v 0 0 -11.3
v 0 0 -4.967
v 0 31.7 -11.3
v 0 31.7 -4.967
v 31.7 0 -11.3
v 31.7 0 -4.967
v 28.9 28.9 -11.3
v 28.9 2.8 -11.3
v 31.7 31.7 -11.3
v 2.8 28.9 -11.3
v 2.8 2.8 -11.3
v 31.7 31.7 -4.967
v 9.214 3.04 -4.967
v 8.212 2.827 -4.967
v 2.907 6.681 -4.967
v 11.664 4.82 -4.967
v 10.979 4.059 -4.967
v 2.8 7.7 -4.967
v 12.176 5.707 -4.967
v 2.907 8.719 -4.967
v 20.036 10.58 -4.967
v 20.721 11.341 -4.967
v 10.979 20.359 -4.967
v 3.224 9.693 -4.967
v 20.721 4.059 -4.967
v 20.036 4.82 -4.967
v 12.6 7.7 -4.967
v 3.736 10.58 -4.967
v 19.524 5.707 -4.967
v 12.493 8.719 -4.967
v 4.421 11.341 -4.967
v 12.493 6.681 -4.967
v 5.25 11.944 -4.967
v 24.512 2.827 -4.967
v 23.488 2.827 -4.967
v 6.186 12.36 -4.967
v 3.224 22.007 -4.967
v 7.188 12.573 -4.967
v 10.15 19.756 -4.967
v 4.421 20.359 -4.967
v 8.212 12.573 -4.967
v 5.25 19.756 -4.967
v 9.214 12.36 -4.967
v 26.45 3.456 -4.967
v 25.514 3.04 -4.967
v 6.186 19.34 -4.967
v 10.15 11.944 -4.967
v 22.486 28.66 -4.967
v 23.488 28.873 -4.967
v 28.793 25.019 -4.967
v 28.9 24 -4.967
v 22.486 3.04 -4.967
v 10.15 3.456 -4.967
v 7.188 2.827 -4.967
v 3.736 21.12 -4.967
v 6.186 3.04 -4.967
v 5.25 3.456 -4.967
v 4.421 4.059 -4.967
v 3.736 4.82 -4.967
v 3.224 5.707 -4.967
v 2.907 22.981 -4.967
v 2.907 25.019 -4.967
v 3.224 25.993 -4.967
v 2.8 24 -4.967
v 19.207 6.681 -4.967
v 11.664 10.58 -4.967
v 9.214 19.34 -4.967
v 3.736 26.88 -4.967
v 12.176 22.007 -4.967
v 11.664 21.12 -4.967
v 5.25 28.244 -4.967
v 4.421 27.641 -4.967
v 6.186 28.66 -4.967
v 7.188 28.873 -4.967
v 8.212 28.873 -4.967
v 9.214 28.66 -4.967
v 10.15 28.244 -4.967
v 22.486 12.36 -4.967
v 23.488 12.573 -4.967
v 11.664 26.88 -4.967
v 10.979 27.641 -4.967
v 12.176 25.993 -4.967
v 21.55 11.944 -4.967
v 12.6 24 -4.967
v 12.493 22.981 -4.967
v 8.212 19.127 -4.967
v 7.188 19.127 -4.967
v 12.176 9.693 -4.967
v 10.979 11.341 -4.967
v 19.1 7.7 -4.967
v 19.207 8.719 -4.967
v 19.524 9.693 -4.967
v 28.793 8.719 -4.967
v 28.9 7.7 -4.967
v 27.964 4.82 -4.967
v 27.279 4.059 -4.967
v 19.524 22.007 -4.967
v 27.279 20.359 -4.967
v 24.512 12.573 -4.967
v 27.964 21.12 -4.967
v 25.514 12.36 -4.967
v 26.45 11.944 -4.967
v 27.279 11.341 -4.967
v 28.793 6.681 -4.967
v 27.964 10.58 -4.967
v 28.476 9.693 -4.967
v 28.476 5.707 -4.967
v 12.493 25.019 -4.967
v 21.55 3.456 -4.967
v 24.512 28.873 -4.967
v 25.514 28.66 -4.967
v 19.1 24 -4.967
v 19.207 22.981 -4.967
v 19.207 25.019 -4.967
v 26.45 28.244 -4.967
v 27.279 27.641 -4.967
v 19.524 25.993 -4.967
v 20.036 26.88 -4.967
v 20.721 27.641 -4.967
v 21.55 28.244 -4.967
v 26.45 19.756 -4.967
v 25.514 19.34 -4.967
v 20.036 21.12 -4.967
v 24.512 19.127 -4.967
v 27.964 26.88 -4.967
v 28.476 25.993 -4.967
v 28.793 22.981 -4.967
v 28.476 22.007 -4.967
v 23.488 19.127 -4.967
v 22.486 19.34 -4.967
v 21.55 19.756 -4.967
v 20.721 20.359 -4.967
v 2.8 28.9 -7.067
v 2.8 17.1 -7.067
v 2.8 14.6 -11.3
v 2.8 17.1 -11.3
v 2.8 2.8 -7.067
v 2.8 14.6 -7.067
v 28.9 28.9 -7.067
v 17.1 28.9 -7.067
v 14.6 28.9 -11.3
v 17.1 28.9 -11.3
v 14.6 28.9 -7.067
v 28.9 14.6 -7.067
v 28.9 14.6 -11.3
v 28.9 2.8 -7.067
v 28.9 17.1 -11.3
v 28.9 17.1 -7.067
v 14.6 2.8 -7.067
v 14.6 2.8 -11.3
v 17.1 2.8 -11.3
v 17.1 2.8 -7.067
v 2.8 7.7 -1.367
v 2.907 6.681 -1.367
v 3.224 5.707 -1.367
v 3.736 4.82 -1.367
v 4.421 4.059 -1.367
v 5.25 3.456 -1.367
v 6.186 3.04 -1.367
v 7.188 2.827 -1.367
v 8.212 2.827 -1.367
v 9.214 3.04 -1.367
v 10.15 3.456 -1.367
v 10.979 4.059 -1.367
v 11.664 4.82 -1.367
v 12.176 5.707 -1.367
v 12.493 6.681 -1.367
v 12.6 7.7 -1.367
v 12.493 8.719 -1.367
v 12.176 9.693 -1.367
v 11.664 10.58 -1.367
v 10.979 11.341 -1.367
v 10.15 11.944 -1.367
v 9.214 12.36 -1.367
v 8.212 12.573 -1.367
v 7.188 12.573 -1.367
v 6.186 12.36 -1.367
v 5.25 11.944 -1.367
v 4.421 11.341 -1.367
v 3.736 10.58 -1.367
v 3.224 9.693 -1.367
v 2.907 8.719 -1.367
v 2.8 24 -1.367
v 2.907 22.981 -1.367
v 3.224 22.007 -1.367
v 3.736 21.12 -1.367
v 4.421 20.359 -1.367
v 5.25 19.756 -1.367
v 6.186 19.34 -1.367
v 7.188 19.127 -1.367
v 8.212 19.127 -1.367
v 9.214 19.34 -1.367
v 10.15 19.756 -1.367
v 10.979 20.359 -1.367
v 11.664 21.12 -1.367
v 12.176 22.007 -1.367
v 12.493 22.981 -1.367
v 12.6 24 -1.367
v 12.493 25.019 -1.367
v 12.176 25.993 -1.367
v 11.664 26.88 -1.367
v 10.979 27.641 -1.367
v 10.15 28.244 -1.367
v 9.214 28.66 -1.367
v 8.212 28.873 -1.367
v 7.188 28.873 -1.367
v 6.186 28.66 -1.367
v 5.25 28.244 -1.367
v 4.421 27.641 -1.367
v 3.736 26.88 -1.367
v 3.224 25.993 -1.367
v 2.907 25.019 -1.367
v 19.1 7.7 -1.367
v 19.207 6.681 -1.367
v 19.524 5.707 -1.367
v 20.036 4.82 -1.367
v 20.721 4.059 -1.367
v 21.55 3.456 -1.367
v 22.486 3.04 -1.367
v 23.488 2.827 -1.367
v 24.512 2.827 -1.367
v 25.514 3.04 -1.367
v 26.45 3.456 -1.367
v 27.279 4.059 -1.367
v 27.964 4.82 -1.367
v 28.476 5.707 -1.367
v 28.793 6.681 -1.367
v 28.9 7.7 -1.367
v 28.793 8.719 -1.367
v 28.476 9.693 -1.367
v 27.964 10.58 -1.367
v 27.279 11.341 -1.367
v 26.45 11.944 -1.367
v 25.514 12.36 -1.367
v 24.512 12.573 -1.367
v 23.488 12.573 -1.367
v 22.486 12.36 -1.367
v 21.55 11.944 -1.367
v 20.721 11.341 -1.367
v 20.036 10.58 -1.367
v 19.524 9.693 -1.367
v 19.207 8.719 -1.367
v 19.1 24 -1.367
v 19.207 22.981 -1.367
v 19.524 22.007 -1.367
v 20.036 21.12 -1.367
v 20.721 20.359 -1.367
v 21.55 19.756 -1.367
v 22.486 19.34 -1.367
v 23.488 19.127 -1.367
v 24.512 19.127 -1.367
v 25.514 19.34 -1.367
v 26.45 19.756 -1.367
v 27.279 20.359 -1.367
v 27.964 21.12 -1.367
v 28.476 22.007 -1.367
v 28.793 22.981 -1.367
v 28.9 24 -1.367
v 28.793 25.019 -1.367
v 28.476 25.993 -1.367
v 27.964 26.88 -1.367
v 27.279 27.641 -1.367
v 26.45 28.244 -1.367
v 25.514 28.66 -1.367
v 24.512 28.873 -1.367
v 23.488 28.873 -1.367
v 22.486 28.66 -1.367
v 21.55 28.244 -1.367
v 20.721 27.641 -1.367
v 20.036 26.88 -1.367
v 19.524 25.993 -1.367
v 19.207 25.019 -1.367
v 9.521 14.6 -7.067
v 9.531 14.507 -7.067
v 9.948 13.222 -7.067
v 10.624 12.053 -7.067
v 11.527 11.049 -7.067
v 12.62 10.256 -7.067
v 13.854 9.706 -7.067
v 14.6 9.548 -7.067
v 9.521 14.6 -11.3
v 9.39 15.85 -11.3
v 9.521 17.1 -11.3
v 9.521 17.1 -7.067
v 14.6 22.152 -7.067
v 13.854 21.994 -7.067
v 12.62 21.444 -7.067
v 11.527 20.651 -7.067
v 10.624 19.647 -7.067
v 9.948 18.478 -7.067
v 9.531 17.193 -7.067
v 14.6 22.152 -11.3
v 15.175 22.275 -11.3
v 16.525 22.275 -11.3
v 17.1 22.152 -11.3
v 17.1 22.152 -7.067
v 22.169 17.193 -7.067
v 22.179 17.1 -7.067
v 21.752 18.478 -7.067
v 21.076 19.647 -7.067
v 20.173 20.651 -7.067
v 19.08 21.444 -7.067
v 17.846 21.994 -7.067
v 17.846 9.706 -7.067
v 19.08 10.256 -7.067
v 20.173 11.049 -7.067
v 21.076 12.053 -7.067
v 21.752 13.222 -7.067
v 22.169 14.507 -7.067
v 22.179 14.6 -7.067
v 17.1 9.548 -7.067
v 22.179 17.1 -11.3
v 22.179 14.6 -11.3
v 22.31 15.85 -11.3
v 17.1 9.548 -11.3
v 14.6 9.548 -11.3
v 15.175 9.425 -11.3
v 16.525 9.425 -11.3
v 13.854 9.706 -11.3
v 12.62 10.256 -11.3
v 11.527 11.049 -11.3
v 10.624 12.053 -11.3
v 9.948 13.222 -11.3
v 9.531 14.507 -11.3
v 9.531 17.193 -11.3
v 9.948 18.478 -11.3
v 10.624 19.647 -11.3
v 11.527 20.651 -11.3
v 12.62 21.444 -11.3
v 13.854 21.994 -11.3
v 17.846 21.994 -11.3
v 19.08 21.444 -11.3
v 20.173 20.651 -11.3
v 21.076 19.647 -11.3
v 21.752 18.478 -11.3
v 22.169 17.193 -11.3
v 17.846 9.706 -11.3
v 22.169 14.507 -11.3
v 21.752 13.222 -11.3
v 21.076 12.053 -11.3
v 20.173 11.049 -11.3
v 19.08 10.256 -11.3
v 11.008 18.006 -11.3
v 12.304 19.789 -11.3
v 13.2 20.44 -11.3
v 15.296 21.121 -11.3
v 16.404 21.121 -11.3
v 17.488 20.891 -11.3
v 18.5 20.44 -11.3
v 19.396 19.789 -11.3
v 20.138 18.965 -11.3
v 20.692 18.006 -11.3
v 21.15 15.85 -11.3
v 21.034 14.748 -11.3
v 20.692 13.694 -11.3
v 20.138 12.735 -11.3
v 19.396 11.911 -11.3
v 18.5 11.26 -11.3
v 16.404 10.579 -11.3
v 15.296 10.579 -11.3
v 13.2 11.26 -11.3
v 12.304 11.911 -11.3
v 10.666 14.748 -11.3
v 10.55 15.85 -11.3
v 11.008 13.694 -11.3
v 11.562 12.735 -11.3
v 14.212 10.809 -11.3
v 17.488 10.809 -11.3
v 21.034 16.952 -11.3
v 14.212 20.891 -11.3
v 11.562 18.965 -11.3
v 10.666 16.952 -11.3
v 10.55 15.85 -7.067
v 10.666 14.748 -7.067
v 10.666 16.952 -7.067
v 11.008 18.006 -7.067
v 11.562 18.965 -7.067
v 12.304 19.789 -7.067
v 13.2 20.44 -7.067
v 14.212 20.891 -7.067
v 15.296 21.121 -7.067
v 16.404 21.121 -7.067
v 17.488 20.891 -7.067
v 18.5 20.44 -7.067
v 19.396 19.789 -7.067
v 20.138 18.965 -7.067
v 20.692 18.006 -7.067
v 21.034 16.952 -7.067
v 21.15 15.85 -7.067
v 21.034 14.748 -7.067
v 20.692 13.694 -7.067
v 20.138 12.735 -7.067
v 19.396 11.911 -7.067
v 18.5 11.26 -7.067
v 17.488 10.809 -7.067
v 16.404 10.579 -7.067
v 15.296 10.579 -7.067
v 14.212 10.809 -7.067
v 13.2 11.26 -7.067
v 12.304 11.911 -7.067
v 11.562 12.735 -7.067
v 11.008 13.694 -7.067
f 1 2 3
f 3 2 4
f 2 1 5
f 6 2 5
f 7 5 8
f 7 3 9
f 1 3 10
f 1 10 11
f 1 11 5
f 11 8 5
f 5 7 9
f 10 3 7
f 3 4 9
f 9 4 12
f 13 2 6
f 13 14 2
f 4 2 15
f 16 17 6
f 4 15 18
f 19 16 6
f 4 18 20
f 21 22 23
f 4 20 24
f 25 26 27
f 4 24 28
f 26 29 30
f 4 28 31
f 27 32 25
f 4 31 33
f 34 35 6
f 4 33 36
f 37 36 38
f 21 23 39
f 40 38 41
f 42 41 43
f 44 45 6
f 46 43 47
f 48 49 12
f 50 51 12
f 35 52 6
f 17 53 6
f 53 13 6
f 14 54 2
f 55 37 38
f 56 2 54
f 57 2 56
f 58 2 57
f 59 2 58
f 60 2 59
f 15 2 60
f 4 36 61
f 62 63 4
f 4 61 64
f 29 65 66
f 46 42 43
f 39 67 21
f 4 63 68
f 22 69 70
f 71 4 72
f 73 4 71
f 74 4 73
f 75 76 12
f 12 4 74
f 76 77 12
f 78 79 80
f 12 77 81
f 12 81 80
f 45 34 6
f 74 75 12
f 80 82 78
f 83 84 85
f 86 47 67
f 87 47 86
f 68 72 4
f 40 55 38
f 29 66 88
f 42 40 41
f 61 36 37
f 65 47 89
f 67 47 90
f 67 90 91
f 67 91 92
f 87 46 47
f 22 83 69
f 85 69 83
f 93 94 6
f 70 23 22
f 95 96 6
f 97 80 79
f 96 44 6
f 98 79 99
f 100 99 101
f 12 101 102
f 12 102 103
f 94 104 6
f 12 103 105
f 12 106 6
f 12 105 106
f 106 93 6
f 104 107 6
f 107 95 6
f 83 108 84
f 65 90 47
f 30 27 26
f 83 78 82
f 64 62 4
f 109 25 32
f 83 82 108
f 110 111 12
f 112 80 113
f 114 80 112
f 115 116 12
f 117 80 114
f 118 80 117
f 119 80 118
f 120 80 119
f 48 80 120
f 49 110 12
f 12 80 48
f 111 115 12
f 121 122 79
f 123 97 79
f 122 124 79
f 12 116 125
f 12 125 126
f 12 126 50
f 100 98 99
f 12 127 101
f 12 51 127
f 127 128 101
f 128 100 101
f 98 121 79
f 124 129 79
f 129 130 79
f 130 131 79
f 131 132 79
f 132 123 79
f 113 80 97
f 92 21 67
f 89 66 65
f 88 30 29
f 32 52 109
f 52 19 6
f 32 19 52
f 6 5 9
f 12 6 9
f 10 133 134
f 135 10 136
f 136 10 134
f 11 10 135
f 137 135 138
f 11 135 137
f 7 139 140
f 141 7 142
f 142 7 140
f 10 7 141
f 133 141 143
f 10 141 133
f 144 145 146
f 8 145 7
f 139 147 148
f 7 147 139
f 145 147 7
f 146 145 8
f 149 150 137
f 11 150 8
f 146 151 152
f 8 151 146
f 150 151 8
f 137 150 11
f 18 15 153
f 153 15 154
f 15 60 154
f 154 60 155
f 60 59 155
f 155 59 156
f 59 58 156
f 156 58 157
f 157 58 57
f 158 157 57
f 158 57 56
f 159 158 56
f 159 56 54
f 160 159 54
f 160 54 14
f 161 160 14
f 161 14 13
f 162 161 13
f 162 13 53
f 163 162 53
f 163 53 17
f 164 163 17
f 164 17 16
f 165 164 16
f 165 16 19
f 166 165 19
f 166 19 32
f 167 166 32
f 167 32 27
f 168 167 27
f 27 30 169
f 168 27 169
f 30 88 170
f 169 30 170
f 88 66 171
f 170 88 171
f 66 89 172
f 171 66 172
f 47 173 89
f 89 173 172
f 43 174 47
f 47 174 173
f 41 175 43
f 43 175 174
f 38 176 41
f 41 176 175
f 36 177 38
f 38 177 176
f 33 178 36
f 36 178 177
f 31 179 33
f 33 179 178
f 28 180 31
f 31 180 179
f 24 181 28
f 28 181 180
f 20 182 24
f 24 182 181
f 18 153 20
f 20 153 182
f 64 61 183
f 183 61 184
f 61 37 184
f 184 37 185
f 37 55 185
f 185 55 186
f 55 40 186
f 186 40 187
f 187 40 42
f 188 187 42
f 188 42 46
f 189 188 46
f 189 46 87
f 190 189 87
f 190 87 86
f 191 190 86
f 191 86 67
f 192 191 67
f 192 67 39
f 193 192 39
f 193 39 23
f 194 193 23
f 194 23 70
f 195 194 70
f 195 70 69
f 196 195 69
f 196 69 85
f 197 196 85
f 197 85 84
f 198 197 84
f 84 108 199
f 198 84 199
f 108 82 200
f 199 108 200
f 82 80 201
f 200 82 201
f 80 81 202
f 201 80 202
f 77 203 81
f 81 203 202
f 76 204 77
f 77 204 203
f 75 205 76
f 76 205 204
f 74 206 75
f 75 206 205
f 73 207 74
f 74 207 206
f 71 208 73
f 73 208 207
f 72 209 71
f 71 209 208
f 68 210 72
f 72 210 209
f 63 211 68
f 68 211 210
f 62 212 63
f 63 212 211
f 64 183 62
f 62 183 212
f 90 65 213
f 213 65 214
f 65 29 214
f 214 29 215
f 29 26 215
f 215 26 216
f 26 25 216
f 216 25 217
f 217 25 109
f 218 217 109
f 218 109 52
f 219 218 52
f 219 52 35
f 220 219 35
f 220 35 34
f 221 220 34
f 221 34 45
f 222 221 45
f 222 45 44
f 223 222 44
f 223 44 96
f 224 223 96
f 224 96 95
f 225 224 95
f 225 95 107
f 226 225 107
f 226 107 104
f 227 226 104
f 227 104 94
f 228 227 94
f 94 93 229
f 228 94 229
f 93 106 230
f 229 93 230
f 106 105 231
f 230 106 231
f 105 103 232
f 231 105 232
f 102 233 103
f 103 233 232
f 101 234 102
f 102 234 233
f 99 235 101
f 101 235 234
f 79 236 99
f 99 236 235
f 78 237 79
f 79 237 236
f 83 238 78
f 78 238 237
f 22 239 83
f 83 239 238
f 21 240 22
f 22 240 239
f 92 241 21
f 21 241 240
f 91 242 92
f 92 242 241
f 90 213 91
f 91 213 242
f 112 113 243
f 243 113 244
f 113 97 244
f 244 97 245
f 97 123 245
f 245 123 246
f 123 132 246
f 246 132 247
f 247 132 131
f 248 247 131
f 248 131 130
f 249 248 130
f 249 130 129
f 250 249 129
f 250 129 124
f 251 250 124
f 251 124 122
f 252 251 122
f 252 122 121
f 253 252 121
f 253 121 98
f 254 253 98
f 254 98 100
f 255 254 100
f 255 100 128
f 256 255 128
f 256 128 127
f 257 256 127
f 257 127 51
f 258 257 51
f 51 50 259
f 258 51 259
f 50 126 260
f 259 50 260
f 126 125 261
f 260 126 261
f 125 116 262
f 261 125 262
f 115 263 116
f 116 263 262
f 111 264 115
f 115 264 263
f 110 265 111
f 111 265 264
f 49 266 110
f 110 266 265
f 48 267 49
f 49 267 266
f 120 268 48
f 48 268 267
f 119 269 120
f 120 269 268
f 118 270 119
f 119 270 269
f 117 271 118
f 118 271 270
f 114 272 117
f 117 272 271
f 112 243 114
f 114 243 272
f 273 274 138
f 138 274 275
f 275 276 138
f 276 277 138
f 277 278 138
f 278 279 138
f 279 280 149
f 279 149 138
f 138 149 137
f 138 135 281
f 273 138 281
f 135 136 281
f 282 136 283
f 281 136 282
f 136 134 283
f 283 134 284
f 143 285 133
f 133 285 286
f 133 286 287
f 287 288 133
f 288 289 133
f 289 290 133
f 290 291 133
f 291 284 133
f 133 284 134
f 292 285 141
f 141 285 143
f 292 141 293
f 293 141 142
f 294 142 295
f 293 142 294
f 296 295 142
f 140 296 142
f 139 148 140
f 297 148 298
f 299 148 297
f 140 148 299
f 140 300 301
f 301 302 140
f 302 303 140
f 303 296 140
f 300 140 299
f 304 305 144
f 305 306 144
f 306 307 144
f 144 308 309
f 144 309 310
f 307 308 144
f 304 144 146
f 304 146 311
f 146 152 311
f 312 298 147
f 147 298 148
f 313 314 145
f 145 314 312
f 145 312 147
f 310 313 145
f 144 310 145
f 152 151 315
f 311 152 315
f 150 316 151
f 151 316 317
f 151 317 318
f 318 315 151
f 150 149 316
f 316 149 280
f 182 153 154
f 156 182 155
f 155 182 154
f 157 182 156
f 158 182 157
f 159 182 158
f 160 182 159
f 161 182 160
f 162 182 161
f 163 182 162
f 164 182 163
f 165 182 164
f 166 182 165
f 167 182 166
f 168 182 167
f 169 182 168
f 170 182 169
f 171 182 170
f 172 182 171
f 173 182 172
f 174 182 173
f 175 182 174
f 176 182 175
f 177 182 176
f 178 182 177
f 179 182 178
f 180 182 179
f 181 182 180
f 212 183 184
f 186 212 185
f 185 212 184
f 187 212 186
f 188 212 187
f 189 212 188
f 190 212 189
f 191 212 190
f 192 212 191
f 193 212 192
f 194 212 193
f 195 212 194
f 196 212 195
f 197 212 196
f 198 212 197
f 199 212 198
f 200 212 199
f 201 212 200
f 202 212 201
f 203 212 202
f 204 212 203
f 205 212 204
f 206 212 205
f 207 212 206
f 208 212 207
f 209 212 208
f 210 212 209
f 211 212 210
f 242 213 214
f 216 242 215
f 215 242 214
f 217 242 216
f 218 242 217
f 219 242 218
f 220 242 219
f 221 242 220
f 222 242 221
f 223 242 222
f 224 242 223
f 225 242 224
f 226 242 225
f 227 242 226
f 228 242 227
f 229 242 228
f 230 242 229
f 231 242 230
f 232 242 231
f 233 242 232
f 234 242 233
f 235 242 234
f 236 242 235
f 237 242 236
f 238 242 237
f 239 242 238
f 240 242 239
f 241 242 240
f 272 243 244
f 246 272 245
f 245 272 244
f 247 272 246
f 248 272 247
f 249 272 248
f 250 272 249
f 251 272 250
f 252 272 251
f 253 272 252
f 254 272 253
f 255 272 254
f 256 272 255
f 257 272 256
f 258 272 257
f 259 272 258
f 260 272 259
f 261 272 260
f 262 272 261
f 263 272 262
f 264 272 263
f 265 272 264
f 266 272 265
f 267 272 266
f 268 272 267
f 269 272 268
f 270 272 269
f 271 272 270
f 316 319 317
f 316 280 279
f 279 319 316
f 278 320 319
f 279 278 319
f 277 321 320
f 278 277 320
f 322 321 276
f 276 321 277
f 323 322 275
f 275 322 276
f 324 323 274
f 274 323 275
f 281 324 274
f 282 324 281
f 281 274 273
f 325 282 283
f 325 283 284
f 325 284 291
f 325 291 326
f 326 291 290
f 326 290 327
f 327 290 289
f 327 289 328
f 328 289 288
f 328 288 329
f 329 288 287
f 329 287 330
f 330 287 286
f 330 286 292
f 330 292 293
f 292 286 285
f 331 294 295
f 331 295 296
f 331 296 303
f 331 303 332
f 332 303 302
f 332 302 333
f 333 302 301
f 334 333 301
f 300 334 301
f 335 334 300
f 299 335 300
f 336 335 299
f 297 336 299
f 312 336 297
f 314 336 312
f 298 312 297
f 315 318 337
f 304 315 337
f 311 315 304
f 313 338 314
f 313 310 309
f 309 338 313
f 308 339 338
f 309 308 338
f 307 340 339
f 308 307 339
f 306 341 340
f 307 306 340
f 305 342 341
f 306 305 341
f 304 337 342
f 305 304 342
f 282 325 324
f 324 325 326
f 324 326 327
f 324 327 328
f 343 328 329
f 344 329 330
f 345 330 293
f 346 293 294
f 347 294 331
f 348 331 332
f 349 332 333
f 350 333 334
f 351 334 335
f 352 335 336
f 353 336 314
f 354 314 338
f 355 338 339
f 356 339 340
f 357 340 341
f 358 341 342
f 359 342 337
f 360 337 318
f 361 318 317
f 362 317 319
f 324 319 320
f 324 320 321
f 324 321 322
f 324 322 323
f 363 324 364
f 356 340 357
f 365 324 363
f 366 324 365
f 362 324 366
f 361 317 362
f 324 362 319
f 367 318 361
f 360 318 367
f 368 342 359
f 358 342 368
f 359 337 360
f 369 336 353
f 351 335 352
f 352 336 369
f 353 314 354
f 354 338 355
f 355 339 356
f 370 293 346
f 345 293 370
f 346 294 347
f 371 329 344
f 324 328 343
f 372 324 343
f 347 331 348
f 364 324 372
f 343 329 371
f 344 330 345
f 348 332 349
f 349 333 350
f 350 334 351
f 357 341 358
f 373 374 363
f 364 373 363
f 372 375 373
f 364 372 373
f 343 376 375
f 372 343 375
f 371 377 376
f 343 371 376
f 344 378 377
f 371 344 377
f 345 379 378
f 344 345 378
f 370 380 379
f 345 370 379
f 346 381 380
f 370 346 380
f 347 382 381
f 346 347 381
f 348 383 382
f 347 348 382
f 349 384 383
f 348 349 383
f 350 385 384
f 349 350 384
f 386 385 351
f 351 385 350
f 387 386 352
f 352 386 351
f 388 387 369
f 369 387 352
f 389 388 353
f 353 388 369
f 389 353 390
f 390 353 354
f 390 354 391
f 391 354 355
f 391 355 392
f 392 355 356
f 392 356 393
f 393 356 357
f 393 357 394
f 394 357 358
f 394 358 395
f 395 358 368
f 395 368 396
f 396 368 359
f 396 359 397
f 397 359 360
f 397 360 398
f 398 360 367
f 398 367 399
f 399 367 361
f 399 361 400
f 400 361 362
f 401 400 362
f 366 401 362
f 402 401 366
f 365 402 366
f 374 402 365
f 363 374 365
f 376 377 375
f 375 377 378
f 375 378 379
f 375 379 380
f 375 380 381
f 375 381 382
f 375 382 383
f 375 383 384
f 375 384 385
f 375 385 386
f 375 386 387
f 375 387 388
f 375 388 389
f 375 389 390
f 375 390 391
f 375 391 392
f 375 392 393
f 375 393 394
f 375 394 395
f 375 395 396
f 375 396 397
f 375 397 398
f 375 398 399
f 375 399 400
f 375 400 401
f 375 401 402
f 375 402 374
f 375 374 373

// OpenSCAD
// edited 2/24/11 3:29 PM

// Standard lego block height, from bottom to top, not counting the circular knobs on top
block_height=9.5;
block_smooth=0.8;

// Exterior thickness
wall_thickness=1.40; //1.45
roof_thickness=1.05;

// Knobs are the circles on top of blocks
knob_diameter=4.9; //4.8
knob_height=1.8;
knob_spacing=8.15; //8.0

// Pins are small cylinders inside blocks with width or length of 1 (visible from the bottom)
pin_diameter=3;

// Posts are the tubes inside blocks with width and length > 1 (visible from the bottom)
post_diameter=6.46; //6.46
post_fudge=0.2; // 0.05 Additional diameter for cylinder that makes the post hollow

// Width of reinforcement bars (visible from the bottom)
reinforcing_width=1.25;

// Axles are cross-shaped holes taken out of lego blocks
axle_spline_width=2.0;
axle_diameter=5;

// Cylinder precision affects both posts and pins
cylinder_precision=0.3;

// The "reinforcement" is the inner wall that goes from post to post, or post to outer wall
module reinforcement(overall_width,height) {
	translate([0,0,height*block_height/2])
		cube([reinforcing_width,overall_width,height*block_height],center=true);
}

// An "axle" is an optional cross-shaped hole that cuts through the lego block
module axle(height) {
	translate([0,0,height*block_height/2]) union() {
		cube([axle_diameter,axle_spline_width,height*block_height],center=true);
		cube([axle_spline_width,axle_diameter,height*block_height],center=true);
	}
}

module lego_knobs(width, length, centerx=0, centery=0, centerz=0) {
	overall_length=(length-1)*knob_spacing+knob_diameter+wall_thickness*2;
	overall_width=(width-1)*knob_spacing+knob_diameter+wall_thickness*2;
	translate([-overall_length/2*centerx, -overall_width/2*centery, -(block_height+knob_height)/2]) {
		translate([knob_diameter/2+wall_thickness,knob_diameter/2+wall_thickness,0]) {
			for (ycount=[0:width-1]) {
				for (xcount=[0:length-1]) {
					translate([xcount*knob_spacing,ycount*knob_spacing,0])
						cylinder(r=knob_diameter/2,h=knob_height,$fs=cylinder_precision);
				}
			}
		}
	}	
}

// The 'positive space' of a lego block
module lego_positive(width, length, height, reinforcement=true, centerx=0, centery=0, centerz=0) {
	overall_length=(length-1)*knob_spacing+knob_diameter+wall_thickness*2;
	overall_width=(width-1)*knob_spacing+knob_diameter+wall_thickness*2;
	translate([-overall_length/2*centerx, -overall_width/2*centery, -(block_height+knob_height)/2]) {
		union() {
			cube([overall_length,overall_width,height*block_height]);
			// minkowski() {
			// 	translate([block_smooth, block_smooth, block_smooth])
			// 		cube([overall_length-block_smooth*2,overall_width-block_smooth*2,height*block_height-block_smooth*2]);
			// 	sphere(r=block_smooth, $fn=16);
			// }
			translate([knob_diameter/2+wall_thickness,knob_diameter/2+wall_thickness,0]) {
				for (ycount=[0:width-1]) {
					for (xcount=[0:length-1]) {
						translate([xcount*knob_spacing,ycount*knob_spacing,block_height*height])
							cylinder(r=knob_diameter/2,h=knob_height,$fs=cylinder_precision);
					}
				}
			}
		}
	}
}

// The 'negative space' of a lego block
module lego_negative(width, length, height, axle_hole=false, reinforcement=true, centerx=0, centery=0, centerz=0) {
	overall_length=(length-1)*knob_spacing+knob_diameter+wall_thickness*2;
	overall_width=(width-1)*knob_spacing+knob_diameter+wall_thickness*2;
	translate([-overall_length/2*centerx, -overall_width/2*centery, -(block_height+knob_height)/2]) {
		union() {
			if (axle_hole==true && width>1 && length>1)
				for (ycount=[0:width-1])
					for (xcount=[0:length-1])
						translate([xcount*knob_spacing,ycount*knob_spacing,0])
							axle(height);
			difference() {
				// Hollow out the block by creating an inner block up to the walls and roof of the brick
				translate([wall_thickness,wall_thickness,0])
					cube([overall_length-wall_thickness*2,overall_width-wall_thickness*2,block_height*height-roof_thickness]);
				if (reinforcement==true && width>1 && length>1) {
					translate([0,0,0]) {
						for (ycount=[0:width-2]) {
							for (xcount=[0:length-2]) {
								translate([xcount*knob_spacing+((knob_spacing+knob_diameter)/2+wall_thickness), ycount*knob_spacing+((knob_spacing+knob_diameter)/2+wall_thickness), 0]) {
									rotate([0,0,0])
										reinforcement(overall_length, height);
									rotate([0,0,90])
										reinforcement(overall_width, height);
								}
							}
							// translate([overall_width/2, ycount*knob_spacing+((knob_spacing+knob_diameter)/2+wall_thickness), 0])
						}
					}
				}
				// Remove center cylinder for post
				if (width>1 && length>1)
					for (ycount=[0:width-2])
						for (xcount=[0:length-2])
							translate([
								xcount*knob_spacing+((knob_spacing+knob_diameter)/2+wall_thickness),
								ycount*knob_spacing+((knob_spacing+knob_diameter)/2+wall_thickness),0])
								cylinder(r=post_diameter/2, h=height*block_height,$fs=cylinder_precision);
				if (width==1 && length!=1)
					for (xcount=[0:length-2])
						translate([xcount*knob_spacing+((knob_spacing+knob_diameter)/2+wall_thickness),overall_width/2,0])
							cylinder(r=pin_diameter/2,h=block_height*height,$fs=cylinder_precision);
				if (length==1 && width!=1)
					for (ycount=[0:width-2])
						translate([overall_length/2,ycount*knob_spacing+((knob_spacing+knob_diameter)/2+wall_thickness),0])
							cylinder(r=pin_diameter/2,h=block_height*height,$fs=cylinder_precision);
			}

			// Add inner cylinder for post back
			if (width>1 && length>1)
				for (ycount=[0:width-2])
					for (xcount=[0:length-2])
						translate([
							xcount*knob_spacing+((knob_spacing+knob_diameter)/2+wall_thickness),
							ycount*knob_spacing+((knob_spacing+knob_diameter)/2+wall_thickness),0])
							cylinder(r=knob_diameter/2+post_fudge, h=height*block_height-roof_thickness,$fs=cylinder_precision);
		}
	}
}

module lego(width, length, height, axle_hole=false, reinforcement=true, centerx=0, centery=0, centerz=0) {
	difference() {
		lego_positive(width, length, height, reinforcement, centerx, centery, centerz);
		lego_negative(width, length, height, axle_hole, reinforcement, centerx, centery, centerz);
	}
}

scale([2.0,2.0,2.0])
	lego(2,2,1/3);
